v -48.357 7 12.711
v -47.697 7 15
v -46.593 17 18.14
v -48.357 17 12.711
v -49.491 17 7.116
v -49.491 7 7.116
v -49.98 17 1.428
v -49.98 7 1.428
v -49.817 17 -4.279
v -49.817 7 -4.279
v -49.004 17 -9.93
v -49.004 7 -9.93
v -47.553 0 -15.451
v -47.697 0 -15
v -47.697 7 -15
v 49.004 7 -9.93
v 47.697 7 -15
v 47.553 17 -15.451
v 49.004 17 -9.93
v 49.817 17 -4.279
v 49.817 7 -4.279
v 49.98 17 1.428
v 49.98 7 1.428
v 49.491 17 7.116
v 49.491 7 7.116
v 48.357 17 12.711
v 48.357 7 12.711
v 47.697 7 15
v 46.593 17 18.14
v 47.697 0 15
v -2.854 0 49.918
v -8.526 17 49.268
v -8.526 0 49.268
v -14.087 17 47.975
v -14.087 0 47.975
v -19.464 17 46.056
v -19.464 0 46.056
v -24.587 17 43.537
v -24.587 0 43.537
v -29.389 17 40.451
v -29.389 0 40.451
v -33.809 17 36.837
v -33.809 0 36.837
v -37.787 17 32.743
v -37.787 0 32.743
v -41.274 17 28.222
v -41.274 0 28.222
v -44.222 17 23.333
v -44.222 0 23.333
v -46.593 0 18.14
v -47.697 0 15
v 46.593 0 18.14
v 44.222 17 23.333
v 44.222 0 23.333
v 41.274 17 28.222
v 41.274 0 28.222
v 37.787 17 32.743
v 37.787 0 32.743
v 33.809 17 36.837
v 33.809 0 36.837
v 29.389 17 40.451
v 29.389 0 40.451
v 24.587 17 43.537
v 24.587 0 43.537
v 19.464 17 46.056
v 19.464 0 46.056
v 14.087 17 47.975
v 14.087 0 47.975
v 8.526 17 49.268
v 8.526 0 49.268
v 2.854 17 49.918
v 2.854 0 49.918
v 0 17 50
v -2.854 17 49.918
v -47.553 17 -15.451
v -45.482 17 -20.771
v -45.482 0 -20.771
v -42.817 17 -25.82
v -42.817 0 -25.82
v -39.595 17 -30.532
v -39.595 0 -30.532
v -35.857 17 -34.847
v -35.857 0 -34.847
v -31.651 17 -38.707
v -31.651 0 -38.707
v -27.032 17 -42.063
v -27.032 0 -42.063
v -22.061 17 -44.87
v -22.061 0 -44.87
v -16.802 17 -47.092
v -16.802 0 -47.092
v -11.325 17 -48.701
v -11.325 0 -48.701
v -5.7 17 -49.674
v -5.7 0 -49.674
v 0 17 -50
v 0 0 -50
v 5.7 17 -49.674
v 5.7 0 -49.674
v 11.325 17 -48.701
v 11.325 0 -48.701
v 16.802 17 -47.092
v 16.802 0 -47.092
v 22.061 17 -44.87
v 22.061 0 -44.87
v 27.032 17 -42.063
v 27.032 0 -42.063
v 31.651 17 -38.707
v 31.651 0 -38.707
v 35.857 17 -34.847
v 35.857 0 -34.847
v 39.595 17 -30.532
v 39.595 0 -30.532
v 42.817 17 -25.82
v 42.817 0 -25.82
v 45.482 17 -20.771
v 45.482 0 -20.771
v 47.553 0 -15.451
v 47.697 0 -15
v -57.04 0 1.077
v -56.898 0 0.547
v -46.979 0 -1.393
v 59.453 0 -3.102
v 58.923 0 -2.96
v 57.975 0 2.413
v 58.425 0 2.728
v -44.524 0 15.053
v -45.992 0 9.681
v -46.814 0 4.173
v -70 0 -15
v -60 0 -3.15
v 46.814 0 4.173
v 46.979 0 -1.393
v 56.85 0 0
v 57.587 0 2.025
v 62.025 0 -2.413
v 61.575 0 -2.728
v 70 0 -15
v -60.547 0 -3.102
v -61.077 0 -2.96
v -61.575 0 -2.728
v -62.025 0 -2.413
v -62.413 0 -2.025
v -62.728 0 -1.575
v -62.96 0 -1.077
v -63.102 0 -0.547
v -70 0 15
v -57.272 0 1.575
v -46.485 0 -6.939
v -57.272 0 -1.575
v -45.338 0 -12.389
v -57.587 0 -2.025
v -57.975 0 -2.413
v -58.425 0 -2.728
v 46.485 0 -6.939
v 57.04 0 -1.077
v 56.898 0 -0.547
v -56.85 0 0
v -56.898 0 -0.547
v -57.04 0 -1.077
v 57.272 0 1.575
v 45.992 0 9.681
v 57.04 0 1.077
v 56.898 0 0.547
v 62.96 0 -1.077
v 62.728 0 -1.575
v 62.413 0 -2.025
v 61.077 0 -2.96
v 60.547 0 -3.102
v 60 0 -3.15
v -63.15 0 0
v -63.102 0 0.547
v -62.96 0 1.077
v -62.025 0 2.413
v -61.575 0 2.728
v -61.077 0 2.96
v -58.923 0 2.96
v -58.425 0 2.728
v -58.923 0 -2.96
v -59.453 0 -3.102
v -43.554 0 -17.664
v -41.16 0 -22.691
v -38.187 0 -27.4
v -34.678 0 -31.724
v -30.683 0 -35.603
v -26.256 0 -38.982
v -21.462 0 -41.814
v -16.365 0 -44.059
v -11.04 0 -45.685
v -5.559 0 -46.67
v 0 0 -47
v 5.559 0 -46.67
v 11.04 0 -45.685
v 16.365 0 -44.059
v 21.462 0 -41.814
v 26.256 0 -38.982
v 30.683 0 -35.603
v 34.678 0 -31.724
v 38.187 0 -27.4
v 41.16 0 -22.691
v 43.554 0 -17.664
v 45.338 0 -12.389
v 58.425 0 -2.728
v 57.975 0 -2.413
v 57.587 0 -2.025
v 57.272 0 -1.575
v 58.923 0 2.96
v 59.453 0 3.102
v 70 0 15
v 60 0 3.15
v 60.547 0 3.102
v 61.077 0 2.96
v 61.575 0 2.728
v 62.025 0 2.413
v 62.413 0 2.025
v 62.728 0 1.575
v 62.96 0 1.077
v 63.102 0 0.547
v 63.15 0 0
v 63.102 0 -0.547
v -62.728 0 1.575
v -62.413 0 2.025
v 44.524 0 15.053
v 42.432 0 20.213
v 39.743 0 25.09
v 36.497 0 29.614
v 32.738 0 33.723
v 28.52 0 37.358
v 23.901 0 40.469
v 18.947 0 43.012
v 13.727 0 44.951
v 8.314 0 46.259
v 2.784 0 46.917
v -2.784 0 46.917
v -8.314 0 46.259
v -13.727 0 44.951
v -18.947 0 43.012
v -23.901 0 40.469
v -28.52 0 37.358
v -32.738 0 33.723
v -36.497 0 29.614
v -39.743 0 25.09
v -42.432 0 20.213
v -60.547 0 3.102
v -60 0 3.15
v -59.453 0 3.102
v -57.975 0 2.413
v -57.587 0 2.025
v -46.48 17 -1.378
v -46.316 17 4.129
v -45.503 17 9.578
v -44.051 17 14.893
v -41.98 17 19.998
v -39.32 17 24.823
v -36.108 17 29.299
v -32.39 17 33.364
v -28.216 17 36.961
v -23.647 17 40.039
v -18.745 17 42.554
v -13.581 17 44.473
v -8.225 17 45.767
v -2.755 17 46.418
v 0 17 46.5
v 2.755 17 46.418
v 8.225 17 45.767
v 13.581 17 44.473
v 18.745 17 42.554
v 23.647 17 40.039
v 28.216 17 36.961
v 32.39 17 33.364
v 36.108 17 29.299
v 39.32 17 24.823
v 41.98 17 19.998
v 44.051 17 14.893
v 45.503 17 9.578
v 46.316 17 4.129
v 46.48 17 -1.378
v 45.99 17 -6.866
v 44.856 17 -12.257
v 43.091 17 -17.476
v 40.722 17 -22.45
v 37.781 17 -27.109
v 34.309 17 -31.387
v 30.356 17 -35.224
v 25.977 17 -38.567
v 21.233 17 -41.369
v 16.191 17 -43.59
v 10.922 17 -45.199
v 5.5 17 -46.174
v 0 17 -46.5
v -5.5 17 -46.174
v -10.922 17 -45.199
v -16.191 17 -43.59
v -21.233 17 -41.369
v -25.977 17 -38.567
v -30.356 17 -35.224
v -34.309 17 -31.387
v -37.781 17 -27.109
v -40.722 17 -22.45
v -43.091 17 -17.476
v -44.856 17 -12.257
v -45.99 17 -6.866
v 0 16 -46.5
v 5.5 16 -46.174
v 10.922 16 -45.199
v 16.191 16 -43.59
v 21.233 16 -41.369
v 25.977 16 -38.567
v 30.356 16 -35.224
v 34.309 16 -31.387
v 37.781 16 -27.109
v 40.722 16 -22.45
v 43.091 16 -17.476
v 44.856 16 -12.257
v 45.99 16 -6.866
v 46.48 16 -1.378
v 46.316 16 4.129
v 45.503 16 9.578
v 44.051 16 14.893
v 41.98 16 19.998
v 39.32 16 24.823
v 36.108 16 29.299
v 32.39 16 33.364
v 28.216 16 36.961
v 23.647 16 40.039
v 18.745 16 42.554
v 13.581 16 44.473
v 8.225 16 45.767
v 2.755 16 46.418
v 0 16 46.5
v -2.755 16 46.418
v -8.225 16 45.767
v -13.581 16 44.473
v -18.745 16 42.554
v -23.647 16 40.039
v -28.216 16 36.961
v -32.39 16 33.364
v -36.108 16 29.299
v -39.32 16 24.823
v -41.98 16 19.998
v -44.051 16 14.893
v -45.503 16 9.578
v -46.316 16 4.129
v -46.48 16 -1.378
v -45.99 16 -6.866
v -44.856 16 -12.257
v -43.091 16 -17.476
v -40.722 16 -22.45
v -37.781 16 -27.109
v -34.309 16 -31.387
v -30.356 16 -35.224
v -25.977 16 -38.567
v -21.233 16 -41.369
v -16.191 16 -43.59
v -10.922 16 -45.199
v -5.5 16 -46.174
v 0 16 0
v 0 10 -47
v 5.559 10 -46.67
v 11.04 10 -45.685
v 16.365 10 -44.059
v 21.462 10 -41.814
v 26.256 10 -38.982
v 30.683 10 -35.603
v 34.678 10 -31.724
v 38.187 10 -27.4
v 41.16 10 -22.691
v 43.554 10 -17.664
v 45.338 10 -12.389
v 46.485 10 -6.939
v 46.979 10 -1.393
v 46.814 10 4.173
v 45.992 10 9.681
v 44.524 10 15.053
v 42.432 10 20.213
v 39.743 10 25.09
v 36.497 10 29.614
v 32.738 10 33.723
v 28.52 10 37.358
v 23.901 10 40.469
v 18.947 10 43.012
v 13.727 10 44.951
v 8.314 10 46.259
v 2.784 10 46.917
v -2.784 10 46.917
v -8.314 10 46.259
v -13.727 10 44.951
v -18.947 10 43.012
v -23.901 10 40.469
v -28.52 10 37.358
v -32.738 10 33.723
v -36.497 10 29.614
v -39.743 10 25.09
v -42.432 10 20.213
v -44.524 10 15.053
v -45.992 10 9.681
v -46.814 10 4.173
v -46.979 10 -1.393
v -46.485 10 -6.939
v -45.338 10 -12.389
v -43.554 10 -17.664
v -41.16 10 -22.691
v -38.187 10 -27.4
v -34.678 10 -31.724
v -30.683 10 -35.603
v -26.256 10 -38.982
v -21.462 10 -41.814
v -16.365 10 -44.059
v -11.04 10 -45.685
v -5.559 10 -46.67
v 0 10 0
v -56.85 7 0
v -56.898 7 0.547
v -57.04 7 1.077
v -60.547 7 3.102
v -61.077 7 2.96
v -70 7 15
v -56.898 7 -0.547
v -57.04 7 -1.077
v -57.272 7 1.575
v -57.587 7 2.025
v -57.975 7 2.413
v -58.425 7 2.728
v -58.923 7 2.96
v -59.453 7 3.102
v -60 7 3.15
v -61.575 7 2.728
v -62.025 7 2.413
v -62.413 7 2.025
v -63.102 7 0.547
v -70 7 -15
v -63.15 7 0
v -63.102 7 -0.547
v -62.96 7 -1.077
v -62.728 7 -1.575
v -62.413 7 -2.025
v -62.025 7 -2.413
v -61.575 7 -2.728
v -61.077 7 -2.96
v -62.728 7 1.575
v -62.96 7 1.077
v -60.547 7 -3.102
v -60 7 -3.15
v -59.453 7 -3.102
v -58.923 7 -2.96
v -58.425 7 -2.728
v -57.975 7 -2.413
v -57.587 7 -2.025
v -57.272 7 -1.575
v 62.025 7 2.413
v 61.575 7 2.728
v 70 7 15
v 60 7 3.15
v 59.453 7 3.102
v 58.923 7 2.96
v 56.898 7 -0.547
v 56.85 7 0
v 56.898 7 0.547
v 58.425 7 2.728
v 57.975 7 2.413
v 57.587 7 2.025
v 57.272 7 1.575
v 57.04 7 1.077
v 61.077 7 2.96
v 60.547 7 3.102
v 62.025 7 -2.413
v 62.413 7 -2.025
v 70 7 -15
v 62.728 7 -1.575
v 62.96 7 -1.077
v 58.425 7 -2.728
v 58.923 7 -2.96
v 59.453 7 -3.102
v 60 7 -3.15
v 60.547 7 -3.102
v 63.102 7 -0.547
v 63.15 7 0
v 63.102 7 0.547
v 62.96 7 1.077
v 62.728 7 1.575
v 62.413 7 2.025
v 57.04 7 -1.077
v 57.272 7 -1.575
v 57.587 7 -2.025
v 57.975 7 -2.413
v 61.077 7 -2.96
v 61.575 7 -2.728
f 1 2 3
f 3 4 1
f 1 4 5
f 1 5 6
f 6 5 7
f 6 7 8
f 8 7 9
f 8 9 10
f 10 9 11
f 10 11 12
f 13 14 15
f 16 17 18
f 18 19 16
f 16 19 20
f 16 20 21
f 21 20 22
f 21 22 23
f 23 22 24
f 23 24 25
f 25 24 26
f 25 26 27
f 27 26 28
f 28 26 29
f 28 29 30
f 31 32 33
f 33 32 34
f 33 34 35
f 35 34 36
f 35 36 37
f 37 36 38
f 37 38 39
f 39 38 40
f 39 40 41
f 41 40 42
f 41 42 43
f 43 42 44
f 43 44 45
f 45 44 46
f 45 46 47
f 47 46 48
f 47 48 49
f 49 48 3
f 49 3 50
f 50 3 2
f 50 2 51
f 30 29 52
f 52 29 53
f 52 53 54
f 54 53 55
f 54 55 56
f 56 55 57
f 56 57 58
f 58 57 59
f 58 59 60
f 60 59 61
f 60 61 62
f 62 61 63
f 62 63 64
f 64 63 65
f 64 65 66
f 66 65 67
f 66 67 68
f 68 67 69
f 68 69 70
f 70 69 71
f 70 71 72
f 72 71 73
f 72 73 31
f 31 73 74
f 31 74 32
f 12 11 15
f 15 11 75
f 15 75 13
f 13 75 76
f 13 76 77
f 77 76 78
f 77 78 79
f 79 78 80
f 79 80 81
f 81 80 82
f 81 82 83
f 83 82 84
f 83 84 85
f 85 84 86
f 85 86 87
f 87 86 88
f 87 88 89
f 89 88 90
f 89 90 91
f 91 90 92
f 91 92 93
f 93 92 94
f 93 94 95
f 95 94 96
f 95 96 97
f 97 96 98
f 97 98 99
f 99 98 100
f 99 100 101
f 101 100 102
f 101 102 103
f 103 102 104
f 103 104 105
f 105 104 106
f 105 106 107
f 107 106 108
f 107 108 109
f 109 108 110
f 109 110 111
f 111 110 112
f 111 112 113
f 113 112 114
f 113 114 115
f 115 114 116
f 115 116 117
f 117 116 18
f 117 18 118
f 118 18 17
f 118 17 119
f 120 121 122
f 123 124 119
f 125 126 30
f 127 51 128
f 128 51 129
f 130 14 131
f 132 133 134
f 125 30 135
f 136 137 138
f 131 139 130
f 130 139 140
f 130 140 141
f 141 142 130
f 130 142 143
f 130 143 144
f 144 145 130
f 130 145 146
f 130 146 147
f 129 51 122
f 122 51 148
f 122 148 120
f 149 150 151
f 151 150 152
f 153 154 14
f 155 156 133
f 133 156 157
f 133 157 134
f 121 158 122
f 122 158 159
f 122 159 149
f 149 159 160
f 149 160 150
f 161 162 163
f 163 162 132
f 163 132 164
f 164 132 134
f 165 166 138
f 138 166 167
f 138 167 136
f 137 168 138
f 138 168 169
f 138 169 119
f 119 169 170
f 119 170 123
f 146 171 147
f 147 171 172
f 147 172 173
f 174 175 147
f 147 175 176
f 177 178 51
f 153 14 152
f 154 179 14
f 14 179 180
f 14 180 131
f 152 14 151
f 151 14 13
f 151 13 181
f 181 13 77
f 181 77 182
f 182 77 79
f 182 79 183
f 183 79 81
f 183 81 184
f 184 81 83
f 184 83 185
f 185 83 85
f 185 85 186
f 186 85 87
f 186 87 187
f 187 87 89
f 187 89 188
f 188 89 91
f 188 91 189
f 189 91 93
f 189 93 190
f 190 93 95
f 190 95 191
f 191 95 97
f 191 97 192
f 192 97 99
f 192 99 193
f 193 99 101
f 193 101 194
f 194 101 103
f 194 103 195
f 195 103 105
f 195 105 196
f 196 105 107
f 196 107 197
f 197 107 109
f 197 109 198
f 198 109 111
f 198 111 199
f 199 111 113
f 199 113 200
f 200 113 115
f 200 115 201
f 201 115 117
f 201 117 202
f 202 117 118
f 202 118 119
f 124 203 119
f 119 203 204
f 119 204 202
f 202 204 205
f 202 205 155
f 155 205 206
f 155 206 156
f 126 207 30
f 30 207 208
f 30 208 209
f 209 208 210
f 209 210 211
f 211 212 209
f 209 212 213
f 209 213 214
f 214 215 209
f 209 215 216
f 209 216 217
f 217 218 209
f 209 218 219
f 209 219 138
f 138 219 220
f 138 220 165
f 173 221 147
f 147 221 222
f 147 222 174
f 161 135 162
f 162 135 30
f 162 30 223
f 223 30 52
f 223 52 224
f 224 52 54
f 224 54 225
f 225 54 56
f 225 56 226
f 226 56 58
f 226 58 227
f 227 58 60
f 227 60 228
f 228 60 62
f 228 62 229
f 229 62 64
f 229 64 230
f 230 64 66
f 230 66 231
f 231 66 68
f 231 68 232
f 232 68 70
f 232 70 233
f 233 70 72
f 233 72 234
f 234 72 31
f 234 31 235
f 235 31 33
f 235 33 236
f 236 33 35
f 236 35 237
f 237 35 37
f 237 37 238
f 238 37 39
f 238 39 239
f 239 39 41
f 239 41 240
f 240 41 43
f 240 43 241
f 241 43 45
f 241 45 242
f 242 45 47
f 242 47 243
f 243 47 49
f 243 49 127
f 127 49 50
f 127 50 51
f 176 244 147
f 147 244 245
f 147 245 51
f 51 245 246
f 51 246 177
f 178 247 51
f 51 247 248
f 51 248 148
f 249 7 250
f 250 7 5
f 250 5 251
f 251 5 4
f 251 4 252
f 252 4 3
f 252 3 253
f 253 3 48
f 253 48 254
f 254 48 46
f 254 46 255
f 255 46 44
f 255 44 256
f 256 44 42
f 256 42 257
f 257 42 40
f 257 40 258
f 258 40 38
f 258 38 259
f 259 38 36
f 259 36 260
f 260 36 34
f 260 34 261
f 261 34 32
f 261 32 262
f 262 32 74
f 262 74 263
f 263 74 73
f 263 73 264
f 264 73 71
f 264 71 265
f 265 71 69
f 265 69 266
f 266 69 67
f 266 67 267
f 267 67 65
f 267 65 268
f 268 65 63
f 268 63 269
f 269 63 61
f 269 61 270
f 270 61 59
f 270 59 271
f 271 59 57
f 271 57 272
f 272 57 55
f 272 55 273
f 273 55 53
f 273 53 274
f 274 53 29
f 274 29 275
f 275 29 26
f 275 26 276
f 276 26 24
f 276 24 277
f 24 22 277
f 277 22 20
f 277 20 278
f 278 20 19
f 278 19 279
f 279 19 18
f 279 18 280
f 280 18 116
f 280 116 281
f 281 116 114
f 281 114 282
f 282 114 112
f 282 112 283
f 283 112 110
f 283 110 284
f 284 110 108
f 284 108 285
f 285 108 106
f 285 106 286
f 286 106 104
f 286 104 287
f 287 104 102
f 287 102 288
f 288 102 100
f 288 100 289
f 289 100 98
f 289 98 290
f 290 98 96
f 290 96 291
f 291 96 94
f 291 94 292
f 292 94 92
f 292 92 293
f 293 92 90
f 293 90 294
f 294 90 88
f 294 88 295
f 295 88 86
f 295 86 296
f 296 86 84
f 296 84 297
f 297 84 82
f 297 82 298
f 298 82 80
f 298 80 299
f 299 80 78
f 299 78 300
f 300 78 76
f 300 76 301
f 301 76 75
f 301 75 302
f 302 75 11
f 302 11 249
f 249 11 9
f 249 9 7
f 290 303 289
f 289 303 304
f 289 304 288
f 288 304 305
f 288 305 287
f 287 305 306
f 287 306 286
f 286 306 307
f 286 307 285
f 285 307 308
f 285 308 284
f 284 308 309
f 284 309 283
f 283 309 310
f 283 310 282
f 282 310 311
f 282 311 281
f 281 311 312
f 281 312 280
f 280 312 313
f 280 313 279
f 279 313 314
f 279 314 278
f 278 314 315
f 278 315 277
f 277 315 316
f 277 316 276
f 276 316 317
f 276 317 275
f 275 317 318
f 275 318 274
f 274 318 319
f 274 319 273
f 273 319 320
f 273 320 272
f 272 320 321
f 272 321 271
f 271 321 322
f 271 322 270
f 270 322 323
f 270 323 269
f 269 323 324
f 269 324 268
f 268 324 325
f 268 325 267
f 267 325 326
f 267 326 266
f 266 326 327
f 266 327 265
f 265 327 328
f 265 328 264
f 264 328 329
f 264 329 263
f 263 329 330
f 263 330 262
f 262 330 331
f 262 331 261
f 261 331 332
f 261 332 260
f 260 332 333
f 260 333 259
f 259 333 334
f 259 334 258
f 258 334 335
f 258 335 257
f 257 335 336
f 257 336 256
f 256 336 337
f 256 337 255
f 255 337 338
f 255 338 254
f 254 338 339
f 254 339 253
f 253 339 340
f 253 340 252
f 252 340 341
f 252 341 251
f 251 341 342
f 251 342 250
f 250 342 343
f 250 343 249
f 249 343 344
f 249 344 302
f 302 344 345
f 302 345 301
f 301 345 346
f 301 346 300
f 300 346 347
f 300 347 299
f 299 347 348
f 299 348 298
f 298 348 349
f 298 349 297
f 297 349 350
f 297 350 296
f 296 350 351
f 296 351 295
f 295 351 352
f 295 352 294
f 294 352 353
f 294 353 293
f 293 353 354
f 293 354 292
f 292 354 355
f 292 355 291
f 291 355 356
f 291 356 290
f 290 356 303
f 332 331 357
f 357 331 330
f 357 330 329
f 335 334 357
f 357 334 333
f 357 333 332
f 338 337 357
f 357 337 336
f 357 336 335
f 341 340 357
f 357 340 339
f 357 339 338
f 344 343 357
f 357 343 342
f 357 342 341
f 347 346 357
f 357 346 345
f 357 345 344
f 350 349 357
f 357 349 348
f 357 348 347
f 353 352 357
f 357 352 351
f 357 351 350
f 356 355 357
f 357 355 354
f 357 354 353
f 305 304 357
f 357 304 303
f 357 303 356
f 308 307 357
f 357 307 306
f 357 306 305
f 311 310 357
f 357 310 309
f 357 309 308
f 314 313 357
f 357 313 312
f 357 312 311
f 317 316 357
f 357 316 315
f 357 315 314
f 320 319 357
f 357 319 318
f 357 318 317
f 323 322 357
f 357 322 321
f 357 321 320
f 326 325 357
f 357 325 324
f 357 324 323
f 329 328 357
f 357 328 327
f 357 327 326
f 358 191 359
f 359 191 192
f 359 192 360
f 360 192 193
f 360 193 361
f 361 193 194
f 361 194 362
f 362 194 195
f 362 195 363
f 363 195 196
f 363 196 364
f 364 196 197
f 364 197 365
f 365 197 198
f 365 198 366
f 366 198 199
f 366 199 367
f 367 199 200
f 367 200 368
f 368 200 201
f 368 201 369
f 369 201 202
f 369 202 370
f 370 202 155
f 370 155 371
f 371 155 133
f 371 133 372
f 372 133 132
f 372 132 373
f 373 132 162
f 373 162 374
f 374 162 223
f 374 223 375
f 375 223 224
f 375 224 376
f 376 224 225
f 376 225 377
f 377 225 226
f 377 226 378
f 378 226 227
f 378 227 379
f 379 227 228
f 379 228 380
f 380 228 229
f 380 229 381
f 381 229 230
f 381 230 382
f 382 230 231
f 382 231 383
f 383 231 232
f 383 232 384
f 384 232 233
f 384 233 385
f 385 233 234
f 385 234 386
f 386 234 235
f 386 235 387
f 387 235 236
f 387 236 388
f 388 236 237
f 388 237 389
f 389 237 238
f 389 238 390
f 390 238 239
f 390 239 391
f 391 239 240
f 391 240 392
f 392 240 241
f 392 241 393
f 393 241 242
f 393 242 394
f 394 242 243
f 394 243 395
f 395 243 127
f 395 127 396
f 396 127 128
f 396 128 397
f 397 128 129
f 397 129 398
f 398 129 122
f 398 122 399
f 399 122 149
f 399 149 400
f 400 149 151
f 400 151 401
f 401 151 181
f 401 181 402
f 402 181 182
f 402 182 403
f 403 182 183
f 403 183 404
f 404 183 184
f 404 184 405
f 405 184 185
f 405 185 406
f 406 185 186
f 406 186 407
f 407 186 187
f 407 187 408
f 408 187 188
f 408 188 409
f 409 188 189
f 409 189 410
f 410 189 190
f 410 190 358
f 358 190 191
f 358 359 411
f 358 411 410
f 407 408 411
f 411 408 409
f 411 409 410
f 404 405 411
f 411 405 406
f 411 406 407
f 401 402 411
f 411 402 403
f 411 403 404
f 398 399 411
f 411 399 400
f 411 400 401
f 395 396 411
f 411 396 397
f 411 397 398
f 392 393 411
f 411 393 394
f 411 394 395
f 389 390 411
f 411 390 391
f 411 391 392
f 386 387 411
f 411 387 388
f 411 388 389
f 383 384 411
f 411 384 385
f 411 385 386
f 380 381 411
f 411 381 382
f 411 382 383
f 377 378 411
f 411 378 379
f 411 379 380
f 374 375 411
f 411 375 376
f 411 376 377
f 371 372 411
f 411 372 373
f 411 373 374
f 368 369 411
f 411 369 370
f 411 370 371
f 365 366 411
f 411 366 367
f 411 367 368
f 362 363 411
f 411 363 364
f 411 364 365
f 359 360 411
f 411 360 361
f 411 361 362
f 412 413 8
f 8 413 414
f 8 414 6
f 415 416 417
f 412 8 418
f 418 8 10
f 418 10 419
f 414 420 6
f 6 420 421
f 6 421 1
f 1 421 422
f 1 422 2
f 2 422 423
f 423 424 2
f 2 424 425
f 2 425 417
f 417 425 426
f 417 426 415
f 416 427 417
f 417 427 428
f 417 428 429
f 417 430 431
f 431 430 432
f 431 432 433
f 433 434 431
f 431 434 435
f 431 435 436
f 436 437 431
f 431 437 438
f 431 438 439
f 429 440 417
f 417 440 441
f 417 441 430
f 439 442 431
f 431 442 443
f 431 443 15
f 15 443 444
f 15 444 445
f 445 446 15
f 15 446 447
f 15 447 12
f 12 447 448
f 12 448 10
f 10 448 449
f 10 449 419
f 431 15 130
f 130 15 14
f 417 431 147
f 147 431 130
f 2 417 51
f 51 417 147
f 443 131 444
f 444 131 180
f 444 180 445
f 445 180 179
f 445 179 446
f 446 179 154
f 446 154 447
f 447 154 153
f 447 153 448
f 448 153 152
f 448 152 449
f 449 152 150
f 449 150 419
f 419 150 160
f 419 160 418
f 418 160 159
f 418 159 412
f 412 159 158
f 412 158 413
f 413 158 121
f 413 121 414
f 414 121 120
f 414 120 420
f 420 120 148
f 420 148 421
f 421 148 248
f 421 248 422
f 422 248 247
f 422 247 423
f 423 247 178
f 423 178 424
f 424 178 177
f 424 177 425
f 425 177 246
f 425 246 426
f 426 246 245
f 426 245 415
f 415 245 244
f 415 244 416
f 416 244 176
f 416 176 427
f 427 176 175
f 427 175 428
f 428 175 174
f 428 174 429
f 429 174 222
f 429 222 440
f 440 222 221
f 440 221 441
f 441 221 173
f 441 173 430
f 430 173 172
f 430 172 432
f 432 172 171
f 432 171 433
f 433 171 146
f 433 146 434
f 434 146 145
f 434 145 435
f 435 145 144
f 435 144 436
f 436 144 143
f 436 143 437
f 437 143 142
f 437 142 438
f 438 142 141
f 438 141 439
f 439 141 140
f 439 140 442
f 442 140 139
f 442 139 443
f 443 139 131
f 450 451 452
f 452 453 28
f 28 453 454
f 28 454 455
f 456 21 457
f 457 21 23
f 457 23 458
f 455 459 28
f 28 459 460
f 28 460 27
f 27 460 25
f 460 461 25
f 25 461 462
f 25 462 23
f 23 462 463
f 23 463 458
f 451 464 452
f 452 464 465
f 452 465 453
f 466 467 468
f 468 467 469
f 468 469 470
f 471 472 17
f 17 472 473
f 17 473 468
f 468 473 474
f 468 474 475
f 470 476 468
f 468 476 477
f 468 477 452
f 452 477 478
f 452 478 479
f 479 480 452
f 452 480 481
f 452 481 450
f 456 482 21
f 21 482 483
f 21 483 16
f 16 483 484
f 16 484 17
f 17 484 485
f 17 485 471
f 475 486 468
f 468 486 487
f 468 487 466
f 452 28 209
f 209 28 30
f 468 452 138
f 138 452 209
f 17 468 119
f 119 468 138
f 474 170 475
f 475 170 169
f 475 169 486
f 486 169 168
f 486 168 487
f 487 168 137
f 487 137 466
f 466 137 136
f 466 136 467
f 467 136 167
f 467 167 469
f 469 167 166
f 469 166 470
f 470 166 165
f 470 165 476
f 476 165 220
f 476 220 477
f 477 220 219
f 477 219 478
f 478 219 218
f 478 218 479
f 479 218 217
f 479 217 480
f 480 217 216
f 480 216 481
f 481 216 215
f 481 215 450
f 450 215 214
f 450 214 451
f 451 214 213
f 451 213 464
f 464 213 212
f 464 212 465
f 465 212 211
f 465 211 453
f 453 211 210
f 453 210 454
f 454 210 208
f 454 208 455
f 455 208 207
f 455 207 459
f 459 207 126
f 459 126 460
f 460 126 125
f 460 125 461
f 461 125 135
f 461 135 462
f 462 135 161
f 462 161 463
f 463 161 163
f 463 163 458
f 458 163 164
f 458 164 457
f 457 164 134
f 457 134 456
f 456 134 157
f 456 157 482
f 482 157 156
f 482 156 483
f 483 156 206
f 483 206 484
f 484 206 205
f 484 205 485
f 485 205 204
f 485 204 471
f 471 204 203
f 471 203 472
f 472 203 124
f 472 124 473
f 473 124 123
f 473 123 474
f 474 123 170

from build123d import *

# Parameters (mm, degrees)
SKETCH1_R           = 50
BOSS_EXTRUDE1_DEPTH = 16
SKETCH2_R           = 50
SKETCH2_R_2         = 46.5
BOSS_EXTRUDE2_DEPTH = 1
SKETCH3_R           = 47
CUT_EXTRUDE1_DEPTH  = 10
SKETCH4_R           = 3.15
BOSS_EXTRUDE3_DEPTH = 7


with BuildPart() as part:
    # Sketch1 → Boss-Extrude1 (new body)
    with BuildSketch(Plane(origin=(0, 0, 0), x_dir=(1, 0, 0), z_dir=(0, 1, 0))):
        Circle(SKETCH1_R)
    extrude(amount=BOSS_EXTRUDE1_DEPTH)

    # Sketch2 → Boss-Extrude2 (add)
    with BuildSketch(Plane(origin=(0, 16, 0), x_dir=(1, 0, 0), z_dir=(0, 1, 0))):
        Circle(SKETCH2_R)
        Circle(SKETCH2_R_2, mode=Mode.SUBTRACT)
    extrude(amount=BOSS_EXTRUDE2_DEPTH)

    # Sketch3 → Cut-Extrude1 (cut)
    with BuildSketch(Plane.XZ):
        Circle(SKETCH3_R)
    extrude(amount=-CUT_EXTRUDE1_DEPTH, mode=Mode.SUBTRACT)

    # Sketch4 → Boss-Extrude3 (add)
    with BuildSketch(Plane(origin=(0, 0, 0), x_dir=(1, 0, 0), z_dir=(0, 1, 0))):
        with BuildLine():
            Line((-47.696960071, 15), (-70, 15))
            Line((-70, 15), (-70, -15))
            Line((-70, -15), (-47.696960071, -15))
            ThreePointArc((-47.696960071, -15), (-50, 0), (-47.696960071, 15))
        make_face()
        with Locations((-60, 0)):
            Circle(SKETCH4_R, mode=Mode.SUBTRACT)
        with BuildLine():
            Line((47.696960071, -15), (70, -15))
            Line((70, -15), (70, 15))
            Line((70, 15), (47.696960071, 15))
            ThreePointArc((47.696960071, 15), (50, 0), (47.696960071, -15))
        make_face()
        with Locations((60, 0)):
            Circle(SKETCH4_R, mode=Mode.SUBTRACT)
    extrude(amount=BOSS_EXTRUDE3_DEPTH)


solid = part.part
